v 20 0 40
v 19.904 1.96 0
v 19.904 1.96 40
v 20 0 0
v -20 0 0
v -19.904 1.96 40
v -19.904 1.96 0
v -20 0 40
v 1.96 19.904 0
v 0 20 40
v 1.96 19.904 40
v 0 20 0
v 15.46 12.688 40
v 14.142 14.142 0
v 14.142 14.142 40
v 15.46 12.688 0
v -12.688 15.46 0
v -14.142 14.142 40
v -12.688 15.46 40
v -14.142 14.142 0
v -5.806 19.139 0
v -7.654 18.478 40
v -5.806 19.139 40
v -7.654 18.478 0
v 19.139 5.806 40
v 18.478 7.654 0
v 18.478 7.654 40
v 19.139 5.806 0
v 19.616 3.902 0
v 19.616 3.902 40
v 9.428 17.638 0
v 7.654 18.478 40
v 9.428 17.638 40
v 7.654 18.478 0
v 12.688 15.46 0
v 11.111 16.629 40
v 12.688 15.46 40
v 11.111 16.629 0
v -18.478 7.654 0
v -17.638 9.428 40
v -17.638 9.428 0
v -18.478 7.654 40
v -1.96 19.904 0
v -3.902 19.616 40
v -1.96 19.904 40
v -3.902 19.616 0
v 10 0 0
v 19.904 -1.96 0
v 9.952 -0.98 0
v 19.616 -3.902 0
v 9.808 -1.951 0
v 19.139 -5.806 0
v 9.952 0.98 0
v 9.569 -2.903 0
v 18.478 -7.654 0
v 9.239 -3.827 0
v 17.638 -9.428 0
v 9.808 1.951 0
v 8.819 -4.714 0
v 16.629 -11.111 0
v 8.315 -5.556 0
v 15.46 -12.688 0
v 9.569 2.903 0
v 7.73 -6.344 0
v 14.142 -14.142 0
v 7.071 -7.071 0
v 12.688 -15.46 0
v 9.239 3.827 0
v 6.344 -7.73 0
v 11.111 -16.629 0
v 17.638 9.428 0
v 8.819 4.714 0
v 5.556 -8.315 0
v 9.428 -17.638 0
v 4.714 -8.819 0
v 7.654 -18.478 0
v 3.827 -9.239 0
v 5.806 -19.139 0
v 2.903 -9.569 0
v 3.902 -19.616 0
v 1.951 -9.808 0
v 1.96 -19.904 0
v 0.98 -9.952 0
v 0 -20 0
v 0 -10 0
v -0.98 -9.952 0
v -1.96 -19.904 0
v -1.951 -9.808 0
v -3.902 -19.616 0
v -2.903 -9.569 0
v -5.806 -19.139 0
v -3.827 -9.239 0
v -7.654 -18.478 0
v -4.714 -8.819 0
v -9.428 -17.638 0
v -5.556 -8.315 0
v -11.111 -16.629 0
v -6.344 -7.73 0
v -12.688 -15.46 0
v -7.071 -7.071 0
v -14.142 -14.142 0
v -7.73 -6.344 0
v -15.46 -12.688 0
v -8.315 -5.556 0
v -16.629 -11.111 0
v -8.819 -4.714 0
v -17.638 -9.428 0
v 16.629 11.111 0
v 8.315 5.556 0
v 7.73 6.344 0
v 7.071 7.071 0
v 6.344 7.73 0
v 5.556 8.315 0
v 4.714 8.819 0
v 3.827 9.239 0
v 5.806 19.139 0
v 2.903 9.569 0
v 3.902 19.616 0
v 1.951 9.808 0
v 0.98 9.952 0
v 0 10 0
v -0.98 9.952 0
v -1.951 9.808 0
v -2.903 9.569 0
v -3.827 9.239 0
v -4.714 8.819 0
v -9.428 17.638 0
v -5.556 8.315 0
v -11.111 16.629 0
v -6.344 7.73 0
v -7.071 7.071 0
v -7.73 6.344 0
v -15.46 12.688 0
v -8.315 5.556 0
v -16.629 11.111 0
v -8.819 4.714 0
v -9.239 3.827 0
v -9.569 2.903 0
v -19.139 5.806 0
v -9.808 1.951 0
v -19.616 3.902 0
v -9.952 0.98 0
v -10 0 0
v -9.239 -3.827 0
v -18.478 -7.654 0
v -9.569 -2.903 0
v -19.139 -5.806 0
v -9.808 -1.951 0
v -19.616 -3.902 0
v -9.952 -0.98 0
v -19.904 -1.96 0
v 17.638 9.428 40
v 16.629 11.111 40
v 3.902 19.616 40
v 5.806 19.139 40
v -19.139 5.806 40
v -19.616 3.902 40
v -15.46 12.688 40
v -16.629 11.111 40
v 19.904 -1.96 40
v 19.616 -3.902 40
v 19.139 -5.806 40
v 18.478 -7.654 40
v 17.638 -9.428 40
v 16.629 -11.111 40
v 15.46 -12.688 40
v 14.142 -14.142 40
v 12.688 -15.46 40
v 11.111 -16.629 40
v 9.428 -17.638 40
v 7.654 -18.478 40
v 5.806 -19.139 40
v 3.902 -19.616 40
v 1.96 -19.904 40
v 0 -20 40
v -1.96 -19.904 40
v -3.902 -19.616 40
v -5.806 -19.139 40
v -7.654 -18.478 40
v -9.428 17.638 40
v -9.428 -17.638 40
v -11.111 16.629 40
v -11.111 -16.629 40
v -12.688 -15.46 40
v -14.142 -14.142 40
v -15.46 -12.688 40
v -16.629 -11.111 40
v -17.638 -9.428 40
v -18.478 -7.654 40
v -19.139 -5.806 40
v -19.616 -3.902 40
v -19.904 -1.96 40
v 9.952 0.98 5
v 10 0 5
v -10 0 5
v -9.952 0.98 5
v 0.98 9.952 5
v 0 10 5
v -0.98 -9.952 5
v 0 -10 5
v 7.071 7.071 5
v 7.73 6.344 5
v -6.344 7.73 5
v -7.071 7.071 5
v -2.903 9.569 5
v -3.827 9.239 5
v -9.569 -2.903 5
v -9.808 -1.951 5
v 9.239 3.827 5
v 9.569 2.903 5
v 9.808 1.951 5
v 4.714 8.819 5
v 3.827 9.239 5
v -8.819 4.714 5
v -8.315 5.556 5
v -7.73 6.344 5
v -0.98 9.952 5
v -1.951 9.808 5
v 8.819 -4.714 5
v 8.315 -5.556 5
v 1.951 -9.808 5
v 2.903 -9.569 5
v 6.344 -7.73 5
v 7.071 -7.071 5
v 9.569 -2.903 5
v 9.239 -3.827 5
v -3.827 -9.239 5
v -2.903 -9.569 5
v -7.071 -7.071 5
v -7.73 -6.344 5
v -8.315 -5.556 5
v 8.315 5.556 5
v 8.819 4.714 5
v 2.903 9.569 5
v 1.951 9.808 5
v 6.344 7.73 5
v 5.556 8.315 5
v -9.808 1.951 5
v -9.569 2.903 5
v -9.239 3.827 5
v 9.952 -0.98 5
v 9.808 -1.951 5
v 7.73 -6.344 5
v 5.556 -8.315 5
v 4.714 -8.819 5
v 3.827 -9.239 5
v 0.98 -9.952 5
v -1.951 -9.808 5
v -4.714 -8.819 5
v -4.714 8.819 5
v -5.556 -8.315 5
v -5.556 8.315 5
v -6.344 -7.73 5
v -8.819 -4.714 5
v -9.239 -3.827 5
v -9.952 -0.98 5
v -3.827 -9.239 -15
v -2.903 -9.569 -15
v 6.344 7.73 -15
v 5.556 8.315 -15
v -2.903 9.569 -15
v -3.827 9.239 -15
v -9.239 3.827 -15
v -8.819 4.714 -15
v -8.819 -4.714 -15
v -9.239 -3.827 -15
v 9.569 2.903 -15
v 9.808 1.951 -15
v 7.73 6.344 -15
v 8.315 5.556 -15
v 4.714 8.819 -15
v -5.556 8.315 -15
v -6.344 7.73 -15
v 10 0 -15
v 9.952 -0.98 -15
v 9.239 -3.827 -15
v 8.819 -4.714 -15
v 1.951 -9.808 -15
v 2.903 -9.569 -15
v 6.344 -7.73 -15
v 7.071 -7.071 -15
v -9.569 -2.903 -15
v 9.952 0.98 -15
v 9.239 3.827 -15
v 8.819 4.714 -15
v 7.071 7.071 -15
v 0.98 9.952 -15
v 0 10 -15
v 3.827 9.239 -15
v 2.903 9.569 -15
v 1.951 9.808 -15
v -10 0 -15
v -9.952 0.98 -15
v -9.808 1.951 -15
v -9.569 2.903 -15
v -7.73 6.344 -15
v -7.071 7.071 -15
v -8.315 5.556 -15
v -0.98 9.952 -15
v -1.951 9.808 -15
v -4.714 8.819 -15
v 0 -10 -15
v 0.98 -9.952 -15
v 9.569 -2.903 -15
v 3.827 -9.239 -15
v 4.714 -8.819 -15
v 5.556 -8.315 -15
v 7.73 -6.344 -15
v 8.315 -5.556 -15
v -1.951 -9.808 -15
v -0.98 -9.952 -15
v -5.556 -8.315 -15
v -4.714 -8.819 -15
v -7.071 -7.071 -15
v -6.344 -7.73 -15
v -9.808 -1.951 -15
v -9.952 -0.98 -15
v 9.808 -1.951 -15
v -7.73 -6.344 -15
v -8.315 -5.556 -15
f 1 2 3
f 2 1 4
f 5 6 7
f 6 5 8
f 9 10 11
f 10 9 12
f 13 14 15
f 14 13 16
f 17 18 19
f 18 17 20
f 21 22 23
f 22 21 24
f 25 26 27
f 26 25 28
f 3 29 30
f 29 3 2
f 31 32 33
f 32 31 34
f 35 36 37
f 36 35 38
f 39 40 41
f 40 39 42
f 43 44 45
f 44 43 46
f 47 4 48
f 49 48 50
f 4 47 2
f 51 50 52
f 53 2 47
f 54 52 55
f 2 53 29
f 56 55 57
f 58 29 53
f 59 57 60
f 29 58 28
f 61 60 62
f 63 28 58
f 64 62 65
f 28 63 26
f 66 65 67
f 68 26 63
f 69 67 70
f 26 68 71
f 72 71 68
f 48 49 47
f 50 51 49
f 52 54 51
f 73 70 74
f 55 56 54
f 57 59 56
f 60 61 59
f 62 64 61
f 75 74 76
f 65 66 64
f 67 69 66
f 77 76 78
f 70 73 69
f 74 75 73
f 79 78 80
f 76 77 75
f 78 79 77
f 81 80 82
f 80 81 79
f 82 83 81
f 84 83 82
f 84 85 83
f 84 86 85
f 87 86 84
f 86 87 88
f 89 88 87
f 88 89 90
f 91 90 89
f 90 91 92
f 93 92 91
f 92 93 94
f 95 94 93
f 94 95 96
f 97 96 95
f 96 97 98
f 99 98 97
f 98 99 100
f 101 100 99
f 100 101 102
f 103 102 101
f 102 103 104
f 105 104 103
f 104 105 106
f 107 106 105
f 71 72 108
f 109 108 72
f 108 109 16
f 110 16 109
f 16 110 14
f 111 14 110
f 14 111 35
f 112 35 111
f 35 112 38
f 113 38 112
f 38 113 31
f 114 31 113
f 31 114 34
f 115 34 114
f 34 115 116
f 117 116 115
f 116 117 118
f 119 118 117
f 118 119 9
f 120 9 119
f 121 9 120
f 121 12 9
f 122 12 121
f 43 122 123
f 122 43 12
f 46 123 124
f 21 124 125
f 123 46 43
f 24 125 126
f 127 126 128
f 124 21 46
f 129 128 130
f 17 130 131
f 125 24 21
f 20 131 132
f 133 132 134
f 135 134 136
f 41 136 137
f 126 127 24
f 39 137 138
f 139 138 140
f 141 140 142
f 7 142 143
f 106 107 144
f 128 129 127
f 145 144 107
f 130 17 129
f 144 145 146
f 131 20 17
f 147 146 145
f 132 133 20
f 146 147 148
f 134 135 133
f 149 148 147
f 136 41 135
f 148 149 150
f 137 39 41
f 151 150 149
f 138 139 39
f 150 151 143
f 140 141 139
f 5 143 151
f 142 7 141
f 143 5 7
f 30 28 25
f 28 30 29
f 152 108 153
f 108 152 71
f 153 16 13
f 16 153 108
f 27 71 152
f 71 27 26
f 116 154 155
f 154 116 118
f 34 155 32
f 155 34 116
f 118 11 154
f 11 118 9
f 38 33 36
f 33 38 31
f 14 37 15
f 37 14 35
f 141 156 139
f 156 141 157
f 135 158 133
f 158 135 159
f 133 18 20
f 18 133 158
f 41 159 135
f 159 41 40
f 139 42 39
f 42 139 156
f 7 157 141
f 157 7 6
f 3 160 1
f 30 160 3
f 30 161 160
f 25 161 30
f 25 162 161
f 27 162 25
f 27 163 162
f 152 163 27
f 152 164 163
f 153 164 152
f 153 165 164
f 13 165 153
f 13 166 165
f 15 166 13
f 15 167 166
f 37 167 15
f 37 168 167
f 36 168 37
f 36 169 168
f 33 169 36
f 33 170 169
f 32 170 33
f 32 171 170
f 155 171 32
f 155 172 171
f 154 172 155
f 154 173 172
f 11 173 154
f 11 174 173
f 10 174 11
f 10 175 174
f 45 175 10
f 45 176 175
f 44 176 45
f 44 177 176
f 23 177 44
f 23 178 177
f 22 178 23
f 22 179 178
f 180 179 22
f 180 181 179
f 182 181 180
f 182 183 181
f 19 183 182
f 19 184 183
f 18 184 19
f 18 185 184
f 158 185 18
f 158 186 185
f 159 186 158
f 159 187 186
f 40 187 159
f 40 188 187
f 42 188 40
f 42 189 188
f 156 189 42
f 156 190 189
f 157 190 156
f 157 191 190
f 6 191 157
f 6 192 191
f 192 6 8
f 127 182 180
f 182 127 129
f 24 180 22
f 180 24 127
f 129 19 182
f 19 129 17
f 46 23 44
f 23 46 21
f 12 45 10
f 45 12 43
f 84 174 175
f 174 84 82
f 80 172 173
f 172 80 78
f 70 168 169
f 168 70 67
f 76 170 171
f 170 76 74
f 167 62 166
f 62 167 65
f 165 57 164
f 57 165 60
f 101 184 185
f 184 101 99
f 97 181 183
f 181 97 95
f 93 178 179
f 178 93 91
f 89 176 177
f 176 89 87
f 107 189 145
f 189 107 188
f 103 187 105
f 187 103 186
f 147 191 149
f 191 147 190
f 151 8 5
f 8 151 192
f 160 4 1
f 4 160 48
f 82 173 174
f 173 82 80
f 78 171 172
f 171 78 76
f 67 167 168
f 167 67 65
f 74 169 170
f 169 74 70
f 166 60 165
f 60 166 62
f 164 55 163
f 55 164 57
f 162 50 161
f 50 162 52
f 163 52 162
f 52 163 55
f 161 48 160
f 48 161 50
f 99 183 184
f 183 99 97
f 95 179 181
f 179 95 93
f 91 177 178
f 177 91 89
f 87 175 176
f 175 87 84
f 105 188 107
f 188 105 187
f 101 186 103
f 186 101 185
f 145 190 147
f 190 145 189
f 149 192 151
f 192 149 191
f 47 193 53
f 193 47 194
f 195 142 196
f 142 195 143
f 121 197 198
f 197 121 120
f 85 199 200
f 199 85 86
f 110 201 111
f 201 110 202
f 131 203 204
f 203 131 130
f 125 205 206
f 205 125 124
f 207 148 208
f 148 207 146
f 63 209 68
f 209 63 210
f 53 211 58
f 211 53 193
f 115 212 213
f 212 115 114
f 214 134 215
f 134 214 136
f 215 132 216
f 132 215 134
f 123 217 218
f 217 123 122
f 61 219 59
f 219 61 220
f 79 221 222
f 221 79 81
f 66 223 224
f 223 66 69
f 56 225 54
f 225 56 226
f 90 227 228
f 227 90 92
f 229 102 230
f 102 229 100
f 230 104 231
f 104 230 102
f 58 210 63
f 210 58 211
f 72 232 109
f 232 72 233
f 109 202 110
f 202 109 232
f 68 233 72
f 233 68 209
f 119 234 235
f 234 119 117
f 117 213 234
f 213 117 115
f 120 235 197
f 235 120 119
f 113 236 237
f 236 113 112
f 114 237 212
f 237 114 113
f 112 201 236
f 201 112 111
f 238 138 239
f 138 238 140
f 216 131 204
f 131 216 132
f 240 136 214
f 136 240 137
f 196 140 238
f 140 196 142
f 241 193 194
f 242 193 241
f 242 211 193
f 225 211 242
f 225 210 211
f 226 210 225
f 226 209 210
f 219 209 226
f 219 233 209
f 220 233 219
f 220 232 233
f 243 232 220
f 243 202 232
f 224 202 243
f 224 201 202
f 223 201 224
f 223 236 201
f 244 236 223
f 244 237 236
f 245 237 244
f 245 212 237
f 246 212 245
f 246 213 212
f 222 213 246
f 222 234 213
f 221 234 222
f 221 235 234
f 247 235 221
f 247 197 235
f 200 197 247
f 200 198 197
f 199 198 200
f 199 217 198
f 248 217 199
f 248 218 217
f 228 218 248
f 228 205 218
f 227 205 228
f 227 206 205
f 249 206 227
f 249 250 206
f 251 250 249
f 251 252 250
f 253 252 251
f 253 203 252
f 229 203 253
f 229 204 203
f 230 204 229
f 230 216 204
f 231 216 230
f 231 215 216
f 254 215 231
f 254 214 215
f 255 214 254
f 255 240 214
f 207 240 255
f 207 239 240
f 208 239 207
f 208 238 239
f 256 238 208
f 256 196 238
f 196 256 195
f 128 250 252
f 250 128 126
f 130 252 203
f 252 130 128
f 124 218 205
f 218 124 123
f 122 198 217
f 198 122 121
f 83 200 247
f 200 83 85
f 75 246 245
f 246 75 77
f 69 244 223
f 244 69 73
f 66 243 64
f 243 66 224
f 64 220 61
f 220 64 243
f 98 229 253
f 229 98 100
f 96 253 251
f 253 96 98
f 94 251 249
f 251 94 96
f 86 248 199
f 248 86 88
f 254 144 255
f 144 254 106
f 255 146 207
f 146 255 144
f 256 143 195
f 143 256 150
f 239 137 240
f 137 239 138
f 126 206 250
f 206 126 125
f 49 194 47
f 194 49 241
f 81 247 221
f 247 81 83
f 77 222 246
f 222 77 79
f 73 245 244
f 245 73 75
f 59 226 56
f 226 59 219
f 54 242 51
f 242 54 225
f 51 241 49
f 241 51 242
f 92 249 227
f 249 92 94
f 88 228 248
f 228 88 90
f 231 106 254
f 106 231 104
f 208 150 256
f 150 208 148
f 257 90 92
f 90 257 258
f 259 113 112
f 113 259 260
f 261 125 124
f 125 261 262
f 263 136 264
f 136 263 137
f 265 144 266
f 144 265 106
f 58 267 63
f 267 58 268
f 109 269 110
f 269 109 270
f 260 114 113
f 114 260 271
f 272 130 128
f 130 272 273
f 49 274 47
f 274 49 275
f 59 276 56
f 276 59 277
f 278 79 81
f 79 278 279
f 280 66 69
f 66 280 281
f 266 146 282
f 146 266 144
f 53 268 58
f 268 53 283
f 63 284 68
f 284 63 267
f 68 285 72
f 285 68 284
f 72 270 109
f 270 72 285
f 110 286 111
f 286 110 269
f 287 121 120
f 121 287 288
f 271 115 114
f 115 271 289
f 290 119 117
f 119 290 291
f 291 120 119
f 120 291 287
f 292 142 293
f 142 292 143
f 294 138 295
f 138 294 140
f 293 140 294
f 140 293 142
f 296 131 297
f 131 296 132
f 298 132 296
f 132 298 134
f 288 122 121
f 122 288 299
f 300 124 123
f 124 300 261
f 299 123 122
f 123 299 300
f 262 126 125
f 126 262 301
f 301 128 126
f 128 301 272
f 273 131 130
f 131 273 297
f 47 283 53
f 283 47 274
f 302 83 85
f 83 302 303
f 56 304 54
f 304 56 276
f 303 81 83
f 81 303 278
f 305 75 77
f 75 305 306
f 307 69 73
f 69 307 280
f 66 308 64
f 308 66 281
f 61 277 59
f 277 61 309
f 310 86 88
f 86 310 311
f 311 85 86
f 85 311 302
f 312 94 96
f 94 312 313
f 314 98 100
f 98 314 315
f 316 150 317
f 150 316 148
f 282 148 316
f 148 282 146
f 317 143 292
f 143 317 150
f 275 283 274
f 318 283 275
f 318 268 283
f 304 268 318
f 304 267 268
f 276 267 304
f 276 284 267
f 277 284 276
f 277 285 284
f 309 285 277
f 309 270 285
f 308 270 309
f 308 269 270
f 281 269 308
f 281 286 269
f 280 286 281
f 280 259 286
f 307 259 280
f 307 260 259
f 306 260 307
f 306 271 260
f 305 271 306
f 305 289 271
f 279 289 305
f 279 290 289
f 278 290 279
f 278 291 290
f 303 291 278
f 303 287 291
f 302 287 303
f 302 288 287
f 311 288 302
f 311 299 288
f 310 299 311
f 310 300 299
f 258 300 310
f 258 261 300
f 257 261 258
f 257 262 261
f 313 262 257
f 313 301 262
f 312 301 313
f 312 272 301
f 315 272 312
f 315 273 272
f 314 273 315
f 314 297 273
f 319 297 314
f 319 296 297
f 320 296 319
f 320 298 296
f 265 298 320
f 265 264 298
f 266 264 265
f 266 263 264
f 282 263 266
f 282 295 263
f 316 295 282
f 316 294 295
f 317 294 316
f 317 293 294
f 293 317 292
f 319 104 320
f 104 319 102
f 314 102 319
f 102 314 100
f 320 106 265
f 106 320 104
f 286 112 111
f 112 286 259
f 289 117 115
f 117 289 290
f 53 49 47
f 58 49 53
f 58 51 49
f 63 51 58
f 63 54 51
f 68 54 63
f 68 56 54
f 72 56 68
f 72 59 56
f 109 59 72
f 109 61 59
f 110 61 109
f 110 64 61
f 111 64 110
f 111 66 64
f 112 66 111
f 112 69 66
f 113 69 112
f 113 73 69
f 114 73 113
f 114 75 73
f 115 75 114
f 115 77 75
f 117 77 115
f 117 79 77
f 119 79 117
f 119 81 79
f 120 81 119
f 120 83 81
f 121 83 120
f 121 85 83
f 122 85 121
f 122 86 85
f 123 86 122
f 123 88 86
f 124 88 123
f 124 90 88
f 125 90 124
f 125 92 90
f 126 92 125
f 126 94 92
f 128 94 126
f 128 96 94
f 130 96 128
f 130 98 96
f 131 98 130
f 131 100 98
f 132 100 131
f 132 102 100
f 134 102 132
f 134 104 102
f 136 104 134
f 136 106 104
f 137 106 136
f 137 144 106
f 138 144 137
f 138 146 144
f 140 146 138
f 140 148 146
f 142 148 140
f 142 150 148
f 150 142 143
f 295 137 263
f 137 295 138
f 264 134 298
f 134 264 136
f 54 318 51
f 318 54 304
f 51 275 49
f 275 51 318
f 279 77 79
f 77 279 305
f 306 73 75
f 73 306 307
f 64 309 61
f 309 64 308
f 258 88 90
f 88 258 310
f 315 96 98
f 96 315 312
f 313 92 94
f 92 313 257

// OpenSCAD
// Parameters
outer_diameter = 40;
outer_height = 40;

shaft_diameter = 20;
shaft_height = 15;
recess_depth = 5;

// Outer cylinder (main body)
module outer_cylinder() {
    difference() {
        // Main cylindrical body
        cylinder(d=outer_diameter, h=outer_height, $fn=64);
        
        // Recessed cavity at the bottom center
        translate([0, 0, 0])
            cylinder(d=shaft_diameter, h=recess_depth, $fn=64);
    }
}

// Inner shaft (protruding downward from the bottom)
module inner_shaft() {
    translate([0, 0, -shaft_height])
        cylinder(d=shaft_diameter, h=shaft_height, $fn=64);
}

// Assembly
union() {
    outer_cylinder();
    inner_shaft();
}

 
